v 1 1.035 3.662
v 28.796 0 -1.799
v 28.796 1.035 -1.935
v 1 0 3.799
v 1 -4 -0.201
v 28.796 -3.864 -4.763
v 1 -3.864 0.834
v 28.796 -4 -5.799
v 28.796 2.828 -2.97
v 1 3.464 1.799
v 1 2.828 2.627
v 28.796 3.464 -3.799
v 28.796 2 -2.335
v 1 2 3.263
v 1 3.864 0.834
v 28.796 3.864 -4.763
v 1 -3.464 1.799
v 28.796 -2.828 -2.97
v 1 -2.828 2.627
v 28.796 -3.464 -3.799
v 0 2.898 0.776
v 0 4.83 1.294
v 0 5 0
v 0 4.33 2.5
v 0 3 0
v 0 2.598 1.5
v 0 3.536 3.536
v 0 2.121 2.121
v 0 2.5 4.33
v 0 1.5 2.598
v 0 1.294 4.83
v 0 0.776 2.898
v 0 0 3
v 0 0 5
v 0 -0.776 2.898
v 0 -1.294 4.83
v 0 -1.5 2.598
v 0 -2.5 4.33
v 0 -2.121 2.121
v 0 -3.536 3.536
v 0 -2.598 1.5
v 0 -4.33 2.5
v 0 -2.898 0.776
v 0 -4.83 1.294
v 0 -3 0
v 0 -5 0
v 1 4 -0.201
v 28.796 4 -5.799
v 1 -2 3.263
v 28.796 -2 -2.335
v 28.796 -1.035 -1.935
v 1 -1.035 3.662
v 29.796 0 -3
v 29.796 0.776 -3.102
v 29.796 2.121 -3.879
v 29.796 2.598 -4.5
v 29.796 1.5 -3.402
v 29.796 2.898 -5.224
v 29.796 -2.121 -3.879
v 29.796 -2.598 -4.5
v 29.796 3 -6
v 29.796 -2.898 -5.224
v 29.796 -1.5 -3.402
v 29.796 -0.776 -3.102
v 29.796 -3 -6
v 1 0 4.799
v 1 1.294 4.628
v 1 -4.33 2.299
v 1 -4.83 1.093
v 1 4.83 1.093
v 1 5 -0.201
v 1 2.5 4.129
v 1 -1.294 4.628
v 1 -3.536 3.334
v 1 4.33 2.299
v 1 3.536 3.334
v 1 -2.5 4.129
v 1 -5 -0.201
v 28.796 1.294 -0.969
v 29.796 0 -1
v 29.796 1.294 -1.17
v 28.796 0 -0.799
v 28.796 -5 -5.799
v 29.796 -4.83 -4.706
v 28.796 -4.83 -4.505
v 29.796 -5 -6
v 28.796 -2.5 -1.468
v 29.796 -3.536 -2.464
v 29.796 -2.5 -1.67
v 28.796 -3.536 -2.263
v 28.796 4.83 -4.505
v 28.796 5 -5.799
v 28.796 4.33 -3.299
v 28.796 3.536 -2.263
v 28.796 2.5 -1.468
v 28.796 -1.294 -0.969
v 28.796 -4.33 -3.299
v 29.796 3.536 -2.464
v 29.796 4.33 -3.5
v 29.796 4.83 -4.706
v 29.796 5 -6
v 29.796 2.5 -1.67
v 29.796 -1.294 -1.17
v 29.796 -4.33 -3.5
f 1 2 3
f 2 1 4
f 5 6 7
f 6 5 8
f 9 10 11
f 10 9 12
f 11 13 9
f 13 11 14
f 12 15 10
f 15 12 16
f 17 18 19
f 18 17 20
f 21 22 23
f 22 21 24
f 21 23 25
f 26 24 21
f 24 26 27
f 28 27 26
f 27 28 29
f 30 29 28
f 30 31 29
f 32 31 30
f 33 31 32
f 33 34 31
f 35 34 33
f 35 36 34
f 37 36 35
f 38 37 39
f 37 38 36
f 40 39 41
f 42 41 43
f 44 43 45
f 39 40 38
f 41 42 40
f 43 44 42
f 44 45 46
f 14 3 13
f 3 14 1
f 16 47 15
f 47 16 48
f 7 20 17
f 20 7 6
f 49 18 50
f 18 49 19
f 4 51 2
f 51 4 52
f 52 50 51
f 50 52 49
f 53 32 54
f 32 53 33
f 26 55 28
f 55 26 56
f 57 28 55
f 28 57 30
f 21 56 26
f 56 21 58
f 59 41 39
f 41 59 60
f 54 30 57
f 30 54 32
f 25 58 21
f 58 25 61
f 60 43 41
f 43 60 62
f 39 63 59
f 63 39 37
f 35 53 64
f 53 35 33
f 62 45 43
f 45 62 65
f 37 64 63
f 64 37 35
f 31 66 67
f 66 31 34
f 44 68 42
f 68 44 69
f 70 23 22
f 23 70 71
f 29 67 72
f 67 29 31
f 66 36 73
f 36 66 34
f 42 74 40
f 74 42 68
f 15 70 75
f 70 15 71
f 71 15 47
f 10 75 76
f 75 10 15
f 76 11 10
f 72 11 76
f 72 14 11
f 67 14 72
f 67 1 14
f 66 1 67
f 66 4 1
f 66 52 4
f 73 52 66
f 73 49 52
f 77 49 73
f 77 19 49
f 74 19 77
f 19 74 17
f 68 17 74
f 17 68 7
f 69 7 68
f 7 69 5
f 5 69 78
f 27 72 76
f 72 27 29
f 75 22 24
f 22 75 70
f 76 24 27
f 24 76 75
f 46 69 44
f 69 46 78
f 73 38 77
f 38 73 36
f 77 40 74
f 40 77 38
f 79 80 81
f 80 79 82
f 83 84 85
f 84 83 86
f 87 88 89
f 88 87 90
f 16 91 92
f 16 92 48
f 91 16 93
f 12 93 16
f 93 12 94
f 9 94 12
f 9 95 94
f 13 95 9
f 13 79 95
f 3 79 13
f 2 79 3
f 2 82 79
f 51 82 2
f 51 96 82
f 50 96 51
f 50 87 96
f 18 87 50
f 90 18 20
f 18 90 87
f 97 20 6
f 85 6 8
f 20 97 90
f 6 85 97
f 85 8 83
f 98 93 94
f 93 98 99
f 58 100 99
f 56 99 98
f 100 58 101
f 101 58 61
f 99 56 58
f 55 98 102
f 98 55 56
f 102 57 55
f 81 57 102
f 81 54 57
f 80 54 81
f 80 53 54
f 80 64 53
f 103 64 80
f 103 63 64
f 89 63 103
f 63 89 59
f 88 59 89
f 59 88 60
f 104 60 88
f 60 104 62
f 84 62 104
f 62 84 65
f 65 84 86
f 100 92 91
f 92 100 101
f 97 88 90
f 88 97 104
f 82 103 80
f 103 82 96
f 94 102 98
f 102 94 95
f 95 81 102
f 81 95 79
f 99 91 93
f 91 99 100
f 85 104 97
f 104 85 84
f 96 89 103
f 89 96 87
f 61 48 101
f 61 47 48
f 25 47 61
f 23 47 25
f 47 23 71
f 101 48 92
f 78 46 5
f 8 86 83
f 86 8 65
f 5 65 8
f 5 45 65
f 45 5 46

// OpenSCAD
// file: ../build_environments.scad
// build_environments.scad: modules to build level sections
//

module pool(diameter=10.0, wall_height=2.0, step_width=3.0, connections=[])
{
    difference() {
        union() {
        difference() {
            cylinder(h=0.5,r1=diameter+step_width,r2=diameter+step_width,$fn=48);
            translate([0,0,-0.1])
                cylinder(h=0.7,r1=diameter,r2=diameter,$fn=48);
        }
        difference() {
            cylinder(h=wall_height,r1=diameter+step_width+1.0,r2=diameter+step_width+1.0,$fn=48);
            translate([0,0,-0.1])
                cylinder(h=wall_height+0.2,r1=diameter+step_width,r2=diameter+step_width,$fn=48);
        }
        }
    
        for (c = connections)
        {
            rotate([0,90,0]) {
                angle = atan2(c[1],c[0]);
                rotate([-angle,0,0]) {
                    cylinder(h=diameter+5.0,r1=c[2],r2=c[2],$fn=48);
                }
            }
        }
    }
}

module straight(length=10.0, width=2.0, dy1=0.0, dy2=0.0, dz=0.0)
{
    dims = [0, 0, 0, 0, 0, (dz/length)];
    matrix = [
        [ 1, dims[0], dims[1], 0 ],
        [ dims[2], 1, dims[4], 0 ],
        [ dims[5], dims[3], 1, 0 ],
        [ 0, 0, 0, 1 ]
    ];
    multmatrix(matrix)
    difference() {
        translate([dy1,0,0])
        union() {
            rotate([0,90,0]) {
                difference() {
                    cylinder(h=(length-dy1-dy2),r1=width+1.0,r2=width+1.0,$fn=24);
                    translate([0,0,-0.1])
                        cylinder(h=(length-dy1-dy2+0.2),r1=width,r2=width,$fn=24);
                }
                difference() {
                    cylinder(h=1.0,r1=width+2.0,r2=width+2.0,$fn=24);
                    translate([0,0,-0.1])
                        cylinder(h=1.2,r1=width,r2=width,$fn=24);
                }
                translate([0,0,(length-dy1-dy2)-1.0]) {
                    difference() {
                        cylinder(h=1.0,r1=width+2.0,r2=width+2.0,$fn=24);
                        translate([0,0,-0.1])
                            cylinder(h=1.2,r1=width,r2=width,$fn=24);
                    }
                }
            }
        }
        translate([0,0,-(2*width+4.0)/2])
            cube([3*length,3*length,2*width+4.0],center=true);
    }
}

module curve(p0=[0,0], center=[0,0], dir=1, angle=0.0, width=2.0)
{
    radius = sqrt((p0[0]-center[0])*(p0[0]-center[0]) + (p0[1]-center[1])*(p0[1]-center[1]));
    if (dir == 0) {
        difference() {
            rotate([0,0,-90])
            difference() {
                rotate_extrude(angle = angle, convexity = 10, $fn=32)
                    translate([radius, 0, 0])
                        circle(r = width+1.0,$fn=24);
                rotate([0,0,-1.0])
                    rotate_extrude(angle = angle+2.0, convexity = 10, $fn=32)
                        translate([radius, 0, 0])
                            circle(r = width,$fn=24);
            }
            translate([0,0,-(2*width+4.0)/2])
                cube([5*radius,5*radius,2*width+4.0],center=true);
        }
    }
    else {
        difference() {
            rotate([0,0,90])
            difference() {
                rotate_extrude(angle = -angle, convexity = 10, $fn=32)
                    translate([radius, 0, 0])
                        circle(r = width+1.0,$fn=24);
                rotate([0,0,1.0])
                    rotate_extrude(angle = -angle-2.0, convexity = 10, $fn=32)
                        translate([radius, 0, 0])
                            circle(r = width,$fn=24);
            }
            translate([0,0,-(2*width+4.0)/2])
                cube([5*radius,5*radius,2*width+4.0],center=true);
        }
    }

}

// test pool
//pool(diameter=12.0000, wall_height=3.0000, step_width=3.0000, connections=[[0.0000,-26.0000,2.0000], [23.6074,0.0000,2.0000]]);

// test straight, slope
//straight(length=26.0000, width=2.0000, dy1=11.8322, dy2=6.7082, dz=0.0000);
//straight(length=29.1549, width=12.0000, dy1=0.0000, dy2=0.0000, dz=-15.0000);

// test curve
//curve(p0=[23.6074, 0.0000], center=[23.6074, 5.0000], dir=0, angle=60.1011, width=2.0000);
//curve(p0=[33.6426, 12.4219], center=[37.9771, 9.9295], dir=1, angle=120.4627, width=2.0000);
// main file
use <../build_environments.scad>;
straight(length=29.7955, width=3.0000, dy1=0.0000, dy2=0.0000, dz=-6.0000);
